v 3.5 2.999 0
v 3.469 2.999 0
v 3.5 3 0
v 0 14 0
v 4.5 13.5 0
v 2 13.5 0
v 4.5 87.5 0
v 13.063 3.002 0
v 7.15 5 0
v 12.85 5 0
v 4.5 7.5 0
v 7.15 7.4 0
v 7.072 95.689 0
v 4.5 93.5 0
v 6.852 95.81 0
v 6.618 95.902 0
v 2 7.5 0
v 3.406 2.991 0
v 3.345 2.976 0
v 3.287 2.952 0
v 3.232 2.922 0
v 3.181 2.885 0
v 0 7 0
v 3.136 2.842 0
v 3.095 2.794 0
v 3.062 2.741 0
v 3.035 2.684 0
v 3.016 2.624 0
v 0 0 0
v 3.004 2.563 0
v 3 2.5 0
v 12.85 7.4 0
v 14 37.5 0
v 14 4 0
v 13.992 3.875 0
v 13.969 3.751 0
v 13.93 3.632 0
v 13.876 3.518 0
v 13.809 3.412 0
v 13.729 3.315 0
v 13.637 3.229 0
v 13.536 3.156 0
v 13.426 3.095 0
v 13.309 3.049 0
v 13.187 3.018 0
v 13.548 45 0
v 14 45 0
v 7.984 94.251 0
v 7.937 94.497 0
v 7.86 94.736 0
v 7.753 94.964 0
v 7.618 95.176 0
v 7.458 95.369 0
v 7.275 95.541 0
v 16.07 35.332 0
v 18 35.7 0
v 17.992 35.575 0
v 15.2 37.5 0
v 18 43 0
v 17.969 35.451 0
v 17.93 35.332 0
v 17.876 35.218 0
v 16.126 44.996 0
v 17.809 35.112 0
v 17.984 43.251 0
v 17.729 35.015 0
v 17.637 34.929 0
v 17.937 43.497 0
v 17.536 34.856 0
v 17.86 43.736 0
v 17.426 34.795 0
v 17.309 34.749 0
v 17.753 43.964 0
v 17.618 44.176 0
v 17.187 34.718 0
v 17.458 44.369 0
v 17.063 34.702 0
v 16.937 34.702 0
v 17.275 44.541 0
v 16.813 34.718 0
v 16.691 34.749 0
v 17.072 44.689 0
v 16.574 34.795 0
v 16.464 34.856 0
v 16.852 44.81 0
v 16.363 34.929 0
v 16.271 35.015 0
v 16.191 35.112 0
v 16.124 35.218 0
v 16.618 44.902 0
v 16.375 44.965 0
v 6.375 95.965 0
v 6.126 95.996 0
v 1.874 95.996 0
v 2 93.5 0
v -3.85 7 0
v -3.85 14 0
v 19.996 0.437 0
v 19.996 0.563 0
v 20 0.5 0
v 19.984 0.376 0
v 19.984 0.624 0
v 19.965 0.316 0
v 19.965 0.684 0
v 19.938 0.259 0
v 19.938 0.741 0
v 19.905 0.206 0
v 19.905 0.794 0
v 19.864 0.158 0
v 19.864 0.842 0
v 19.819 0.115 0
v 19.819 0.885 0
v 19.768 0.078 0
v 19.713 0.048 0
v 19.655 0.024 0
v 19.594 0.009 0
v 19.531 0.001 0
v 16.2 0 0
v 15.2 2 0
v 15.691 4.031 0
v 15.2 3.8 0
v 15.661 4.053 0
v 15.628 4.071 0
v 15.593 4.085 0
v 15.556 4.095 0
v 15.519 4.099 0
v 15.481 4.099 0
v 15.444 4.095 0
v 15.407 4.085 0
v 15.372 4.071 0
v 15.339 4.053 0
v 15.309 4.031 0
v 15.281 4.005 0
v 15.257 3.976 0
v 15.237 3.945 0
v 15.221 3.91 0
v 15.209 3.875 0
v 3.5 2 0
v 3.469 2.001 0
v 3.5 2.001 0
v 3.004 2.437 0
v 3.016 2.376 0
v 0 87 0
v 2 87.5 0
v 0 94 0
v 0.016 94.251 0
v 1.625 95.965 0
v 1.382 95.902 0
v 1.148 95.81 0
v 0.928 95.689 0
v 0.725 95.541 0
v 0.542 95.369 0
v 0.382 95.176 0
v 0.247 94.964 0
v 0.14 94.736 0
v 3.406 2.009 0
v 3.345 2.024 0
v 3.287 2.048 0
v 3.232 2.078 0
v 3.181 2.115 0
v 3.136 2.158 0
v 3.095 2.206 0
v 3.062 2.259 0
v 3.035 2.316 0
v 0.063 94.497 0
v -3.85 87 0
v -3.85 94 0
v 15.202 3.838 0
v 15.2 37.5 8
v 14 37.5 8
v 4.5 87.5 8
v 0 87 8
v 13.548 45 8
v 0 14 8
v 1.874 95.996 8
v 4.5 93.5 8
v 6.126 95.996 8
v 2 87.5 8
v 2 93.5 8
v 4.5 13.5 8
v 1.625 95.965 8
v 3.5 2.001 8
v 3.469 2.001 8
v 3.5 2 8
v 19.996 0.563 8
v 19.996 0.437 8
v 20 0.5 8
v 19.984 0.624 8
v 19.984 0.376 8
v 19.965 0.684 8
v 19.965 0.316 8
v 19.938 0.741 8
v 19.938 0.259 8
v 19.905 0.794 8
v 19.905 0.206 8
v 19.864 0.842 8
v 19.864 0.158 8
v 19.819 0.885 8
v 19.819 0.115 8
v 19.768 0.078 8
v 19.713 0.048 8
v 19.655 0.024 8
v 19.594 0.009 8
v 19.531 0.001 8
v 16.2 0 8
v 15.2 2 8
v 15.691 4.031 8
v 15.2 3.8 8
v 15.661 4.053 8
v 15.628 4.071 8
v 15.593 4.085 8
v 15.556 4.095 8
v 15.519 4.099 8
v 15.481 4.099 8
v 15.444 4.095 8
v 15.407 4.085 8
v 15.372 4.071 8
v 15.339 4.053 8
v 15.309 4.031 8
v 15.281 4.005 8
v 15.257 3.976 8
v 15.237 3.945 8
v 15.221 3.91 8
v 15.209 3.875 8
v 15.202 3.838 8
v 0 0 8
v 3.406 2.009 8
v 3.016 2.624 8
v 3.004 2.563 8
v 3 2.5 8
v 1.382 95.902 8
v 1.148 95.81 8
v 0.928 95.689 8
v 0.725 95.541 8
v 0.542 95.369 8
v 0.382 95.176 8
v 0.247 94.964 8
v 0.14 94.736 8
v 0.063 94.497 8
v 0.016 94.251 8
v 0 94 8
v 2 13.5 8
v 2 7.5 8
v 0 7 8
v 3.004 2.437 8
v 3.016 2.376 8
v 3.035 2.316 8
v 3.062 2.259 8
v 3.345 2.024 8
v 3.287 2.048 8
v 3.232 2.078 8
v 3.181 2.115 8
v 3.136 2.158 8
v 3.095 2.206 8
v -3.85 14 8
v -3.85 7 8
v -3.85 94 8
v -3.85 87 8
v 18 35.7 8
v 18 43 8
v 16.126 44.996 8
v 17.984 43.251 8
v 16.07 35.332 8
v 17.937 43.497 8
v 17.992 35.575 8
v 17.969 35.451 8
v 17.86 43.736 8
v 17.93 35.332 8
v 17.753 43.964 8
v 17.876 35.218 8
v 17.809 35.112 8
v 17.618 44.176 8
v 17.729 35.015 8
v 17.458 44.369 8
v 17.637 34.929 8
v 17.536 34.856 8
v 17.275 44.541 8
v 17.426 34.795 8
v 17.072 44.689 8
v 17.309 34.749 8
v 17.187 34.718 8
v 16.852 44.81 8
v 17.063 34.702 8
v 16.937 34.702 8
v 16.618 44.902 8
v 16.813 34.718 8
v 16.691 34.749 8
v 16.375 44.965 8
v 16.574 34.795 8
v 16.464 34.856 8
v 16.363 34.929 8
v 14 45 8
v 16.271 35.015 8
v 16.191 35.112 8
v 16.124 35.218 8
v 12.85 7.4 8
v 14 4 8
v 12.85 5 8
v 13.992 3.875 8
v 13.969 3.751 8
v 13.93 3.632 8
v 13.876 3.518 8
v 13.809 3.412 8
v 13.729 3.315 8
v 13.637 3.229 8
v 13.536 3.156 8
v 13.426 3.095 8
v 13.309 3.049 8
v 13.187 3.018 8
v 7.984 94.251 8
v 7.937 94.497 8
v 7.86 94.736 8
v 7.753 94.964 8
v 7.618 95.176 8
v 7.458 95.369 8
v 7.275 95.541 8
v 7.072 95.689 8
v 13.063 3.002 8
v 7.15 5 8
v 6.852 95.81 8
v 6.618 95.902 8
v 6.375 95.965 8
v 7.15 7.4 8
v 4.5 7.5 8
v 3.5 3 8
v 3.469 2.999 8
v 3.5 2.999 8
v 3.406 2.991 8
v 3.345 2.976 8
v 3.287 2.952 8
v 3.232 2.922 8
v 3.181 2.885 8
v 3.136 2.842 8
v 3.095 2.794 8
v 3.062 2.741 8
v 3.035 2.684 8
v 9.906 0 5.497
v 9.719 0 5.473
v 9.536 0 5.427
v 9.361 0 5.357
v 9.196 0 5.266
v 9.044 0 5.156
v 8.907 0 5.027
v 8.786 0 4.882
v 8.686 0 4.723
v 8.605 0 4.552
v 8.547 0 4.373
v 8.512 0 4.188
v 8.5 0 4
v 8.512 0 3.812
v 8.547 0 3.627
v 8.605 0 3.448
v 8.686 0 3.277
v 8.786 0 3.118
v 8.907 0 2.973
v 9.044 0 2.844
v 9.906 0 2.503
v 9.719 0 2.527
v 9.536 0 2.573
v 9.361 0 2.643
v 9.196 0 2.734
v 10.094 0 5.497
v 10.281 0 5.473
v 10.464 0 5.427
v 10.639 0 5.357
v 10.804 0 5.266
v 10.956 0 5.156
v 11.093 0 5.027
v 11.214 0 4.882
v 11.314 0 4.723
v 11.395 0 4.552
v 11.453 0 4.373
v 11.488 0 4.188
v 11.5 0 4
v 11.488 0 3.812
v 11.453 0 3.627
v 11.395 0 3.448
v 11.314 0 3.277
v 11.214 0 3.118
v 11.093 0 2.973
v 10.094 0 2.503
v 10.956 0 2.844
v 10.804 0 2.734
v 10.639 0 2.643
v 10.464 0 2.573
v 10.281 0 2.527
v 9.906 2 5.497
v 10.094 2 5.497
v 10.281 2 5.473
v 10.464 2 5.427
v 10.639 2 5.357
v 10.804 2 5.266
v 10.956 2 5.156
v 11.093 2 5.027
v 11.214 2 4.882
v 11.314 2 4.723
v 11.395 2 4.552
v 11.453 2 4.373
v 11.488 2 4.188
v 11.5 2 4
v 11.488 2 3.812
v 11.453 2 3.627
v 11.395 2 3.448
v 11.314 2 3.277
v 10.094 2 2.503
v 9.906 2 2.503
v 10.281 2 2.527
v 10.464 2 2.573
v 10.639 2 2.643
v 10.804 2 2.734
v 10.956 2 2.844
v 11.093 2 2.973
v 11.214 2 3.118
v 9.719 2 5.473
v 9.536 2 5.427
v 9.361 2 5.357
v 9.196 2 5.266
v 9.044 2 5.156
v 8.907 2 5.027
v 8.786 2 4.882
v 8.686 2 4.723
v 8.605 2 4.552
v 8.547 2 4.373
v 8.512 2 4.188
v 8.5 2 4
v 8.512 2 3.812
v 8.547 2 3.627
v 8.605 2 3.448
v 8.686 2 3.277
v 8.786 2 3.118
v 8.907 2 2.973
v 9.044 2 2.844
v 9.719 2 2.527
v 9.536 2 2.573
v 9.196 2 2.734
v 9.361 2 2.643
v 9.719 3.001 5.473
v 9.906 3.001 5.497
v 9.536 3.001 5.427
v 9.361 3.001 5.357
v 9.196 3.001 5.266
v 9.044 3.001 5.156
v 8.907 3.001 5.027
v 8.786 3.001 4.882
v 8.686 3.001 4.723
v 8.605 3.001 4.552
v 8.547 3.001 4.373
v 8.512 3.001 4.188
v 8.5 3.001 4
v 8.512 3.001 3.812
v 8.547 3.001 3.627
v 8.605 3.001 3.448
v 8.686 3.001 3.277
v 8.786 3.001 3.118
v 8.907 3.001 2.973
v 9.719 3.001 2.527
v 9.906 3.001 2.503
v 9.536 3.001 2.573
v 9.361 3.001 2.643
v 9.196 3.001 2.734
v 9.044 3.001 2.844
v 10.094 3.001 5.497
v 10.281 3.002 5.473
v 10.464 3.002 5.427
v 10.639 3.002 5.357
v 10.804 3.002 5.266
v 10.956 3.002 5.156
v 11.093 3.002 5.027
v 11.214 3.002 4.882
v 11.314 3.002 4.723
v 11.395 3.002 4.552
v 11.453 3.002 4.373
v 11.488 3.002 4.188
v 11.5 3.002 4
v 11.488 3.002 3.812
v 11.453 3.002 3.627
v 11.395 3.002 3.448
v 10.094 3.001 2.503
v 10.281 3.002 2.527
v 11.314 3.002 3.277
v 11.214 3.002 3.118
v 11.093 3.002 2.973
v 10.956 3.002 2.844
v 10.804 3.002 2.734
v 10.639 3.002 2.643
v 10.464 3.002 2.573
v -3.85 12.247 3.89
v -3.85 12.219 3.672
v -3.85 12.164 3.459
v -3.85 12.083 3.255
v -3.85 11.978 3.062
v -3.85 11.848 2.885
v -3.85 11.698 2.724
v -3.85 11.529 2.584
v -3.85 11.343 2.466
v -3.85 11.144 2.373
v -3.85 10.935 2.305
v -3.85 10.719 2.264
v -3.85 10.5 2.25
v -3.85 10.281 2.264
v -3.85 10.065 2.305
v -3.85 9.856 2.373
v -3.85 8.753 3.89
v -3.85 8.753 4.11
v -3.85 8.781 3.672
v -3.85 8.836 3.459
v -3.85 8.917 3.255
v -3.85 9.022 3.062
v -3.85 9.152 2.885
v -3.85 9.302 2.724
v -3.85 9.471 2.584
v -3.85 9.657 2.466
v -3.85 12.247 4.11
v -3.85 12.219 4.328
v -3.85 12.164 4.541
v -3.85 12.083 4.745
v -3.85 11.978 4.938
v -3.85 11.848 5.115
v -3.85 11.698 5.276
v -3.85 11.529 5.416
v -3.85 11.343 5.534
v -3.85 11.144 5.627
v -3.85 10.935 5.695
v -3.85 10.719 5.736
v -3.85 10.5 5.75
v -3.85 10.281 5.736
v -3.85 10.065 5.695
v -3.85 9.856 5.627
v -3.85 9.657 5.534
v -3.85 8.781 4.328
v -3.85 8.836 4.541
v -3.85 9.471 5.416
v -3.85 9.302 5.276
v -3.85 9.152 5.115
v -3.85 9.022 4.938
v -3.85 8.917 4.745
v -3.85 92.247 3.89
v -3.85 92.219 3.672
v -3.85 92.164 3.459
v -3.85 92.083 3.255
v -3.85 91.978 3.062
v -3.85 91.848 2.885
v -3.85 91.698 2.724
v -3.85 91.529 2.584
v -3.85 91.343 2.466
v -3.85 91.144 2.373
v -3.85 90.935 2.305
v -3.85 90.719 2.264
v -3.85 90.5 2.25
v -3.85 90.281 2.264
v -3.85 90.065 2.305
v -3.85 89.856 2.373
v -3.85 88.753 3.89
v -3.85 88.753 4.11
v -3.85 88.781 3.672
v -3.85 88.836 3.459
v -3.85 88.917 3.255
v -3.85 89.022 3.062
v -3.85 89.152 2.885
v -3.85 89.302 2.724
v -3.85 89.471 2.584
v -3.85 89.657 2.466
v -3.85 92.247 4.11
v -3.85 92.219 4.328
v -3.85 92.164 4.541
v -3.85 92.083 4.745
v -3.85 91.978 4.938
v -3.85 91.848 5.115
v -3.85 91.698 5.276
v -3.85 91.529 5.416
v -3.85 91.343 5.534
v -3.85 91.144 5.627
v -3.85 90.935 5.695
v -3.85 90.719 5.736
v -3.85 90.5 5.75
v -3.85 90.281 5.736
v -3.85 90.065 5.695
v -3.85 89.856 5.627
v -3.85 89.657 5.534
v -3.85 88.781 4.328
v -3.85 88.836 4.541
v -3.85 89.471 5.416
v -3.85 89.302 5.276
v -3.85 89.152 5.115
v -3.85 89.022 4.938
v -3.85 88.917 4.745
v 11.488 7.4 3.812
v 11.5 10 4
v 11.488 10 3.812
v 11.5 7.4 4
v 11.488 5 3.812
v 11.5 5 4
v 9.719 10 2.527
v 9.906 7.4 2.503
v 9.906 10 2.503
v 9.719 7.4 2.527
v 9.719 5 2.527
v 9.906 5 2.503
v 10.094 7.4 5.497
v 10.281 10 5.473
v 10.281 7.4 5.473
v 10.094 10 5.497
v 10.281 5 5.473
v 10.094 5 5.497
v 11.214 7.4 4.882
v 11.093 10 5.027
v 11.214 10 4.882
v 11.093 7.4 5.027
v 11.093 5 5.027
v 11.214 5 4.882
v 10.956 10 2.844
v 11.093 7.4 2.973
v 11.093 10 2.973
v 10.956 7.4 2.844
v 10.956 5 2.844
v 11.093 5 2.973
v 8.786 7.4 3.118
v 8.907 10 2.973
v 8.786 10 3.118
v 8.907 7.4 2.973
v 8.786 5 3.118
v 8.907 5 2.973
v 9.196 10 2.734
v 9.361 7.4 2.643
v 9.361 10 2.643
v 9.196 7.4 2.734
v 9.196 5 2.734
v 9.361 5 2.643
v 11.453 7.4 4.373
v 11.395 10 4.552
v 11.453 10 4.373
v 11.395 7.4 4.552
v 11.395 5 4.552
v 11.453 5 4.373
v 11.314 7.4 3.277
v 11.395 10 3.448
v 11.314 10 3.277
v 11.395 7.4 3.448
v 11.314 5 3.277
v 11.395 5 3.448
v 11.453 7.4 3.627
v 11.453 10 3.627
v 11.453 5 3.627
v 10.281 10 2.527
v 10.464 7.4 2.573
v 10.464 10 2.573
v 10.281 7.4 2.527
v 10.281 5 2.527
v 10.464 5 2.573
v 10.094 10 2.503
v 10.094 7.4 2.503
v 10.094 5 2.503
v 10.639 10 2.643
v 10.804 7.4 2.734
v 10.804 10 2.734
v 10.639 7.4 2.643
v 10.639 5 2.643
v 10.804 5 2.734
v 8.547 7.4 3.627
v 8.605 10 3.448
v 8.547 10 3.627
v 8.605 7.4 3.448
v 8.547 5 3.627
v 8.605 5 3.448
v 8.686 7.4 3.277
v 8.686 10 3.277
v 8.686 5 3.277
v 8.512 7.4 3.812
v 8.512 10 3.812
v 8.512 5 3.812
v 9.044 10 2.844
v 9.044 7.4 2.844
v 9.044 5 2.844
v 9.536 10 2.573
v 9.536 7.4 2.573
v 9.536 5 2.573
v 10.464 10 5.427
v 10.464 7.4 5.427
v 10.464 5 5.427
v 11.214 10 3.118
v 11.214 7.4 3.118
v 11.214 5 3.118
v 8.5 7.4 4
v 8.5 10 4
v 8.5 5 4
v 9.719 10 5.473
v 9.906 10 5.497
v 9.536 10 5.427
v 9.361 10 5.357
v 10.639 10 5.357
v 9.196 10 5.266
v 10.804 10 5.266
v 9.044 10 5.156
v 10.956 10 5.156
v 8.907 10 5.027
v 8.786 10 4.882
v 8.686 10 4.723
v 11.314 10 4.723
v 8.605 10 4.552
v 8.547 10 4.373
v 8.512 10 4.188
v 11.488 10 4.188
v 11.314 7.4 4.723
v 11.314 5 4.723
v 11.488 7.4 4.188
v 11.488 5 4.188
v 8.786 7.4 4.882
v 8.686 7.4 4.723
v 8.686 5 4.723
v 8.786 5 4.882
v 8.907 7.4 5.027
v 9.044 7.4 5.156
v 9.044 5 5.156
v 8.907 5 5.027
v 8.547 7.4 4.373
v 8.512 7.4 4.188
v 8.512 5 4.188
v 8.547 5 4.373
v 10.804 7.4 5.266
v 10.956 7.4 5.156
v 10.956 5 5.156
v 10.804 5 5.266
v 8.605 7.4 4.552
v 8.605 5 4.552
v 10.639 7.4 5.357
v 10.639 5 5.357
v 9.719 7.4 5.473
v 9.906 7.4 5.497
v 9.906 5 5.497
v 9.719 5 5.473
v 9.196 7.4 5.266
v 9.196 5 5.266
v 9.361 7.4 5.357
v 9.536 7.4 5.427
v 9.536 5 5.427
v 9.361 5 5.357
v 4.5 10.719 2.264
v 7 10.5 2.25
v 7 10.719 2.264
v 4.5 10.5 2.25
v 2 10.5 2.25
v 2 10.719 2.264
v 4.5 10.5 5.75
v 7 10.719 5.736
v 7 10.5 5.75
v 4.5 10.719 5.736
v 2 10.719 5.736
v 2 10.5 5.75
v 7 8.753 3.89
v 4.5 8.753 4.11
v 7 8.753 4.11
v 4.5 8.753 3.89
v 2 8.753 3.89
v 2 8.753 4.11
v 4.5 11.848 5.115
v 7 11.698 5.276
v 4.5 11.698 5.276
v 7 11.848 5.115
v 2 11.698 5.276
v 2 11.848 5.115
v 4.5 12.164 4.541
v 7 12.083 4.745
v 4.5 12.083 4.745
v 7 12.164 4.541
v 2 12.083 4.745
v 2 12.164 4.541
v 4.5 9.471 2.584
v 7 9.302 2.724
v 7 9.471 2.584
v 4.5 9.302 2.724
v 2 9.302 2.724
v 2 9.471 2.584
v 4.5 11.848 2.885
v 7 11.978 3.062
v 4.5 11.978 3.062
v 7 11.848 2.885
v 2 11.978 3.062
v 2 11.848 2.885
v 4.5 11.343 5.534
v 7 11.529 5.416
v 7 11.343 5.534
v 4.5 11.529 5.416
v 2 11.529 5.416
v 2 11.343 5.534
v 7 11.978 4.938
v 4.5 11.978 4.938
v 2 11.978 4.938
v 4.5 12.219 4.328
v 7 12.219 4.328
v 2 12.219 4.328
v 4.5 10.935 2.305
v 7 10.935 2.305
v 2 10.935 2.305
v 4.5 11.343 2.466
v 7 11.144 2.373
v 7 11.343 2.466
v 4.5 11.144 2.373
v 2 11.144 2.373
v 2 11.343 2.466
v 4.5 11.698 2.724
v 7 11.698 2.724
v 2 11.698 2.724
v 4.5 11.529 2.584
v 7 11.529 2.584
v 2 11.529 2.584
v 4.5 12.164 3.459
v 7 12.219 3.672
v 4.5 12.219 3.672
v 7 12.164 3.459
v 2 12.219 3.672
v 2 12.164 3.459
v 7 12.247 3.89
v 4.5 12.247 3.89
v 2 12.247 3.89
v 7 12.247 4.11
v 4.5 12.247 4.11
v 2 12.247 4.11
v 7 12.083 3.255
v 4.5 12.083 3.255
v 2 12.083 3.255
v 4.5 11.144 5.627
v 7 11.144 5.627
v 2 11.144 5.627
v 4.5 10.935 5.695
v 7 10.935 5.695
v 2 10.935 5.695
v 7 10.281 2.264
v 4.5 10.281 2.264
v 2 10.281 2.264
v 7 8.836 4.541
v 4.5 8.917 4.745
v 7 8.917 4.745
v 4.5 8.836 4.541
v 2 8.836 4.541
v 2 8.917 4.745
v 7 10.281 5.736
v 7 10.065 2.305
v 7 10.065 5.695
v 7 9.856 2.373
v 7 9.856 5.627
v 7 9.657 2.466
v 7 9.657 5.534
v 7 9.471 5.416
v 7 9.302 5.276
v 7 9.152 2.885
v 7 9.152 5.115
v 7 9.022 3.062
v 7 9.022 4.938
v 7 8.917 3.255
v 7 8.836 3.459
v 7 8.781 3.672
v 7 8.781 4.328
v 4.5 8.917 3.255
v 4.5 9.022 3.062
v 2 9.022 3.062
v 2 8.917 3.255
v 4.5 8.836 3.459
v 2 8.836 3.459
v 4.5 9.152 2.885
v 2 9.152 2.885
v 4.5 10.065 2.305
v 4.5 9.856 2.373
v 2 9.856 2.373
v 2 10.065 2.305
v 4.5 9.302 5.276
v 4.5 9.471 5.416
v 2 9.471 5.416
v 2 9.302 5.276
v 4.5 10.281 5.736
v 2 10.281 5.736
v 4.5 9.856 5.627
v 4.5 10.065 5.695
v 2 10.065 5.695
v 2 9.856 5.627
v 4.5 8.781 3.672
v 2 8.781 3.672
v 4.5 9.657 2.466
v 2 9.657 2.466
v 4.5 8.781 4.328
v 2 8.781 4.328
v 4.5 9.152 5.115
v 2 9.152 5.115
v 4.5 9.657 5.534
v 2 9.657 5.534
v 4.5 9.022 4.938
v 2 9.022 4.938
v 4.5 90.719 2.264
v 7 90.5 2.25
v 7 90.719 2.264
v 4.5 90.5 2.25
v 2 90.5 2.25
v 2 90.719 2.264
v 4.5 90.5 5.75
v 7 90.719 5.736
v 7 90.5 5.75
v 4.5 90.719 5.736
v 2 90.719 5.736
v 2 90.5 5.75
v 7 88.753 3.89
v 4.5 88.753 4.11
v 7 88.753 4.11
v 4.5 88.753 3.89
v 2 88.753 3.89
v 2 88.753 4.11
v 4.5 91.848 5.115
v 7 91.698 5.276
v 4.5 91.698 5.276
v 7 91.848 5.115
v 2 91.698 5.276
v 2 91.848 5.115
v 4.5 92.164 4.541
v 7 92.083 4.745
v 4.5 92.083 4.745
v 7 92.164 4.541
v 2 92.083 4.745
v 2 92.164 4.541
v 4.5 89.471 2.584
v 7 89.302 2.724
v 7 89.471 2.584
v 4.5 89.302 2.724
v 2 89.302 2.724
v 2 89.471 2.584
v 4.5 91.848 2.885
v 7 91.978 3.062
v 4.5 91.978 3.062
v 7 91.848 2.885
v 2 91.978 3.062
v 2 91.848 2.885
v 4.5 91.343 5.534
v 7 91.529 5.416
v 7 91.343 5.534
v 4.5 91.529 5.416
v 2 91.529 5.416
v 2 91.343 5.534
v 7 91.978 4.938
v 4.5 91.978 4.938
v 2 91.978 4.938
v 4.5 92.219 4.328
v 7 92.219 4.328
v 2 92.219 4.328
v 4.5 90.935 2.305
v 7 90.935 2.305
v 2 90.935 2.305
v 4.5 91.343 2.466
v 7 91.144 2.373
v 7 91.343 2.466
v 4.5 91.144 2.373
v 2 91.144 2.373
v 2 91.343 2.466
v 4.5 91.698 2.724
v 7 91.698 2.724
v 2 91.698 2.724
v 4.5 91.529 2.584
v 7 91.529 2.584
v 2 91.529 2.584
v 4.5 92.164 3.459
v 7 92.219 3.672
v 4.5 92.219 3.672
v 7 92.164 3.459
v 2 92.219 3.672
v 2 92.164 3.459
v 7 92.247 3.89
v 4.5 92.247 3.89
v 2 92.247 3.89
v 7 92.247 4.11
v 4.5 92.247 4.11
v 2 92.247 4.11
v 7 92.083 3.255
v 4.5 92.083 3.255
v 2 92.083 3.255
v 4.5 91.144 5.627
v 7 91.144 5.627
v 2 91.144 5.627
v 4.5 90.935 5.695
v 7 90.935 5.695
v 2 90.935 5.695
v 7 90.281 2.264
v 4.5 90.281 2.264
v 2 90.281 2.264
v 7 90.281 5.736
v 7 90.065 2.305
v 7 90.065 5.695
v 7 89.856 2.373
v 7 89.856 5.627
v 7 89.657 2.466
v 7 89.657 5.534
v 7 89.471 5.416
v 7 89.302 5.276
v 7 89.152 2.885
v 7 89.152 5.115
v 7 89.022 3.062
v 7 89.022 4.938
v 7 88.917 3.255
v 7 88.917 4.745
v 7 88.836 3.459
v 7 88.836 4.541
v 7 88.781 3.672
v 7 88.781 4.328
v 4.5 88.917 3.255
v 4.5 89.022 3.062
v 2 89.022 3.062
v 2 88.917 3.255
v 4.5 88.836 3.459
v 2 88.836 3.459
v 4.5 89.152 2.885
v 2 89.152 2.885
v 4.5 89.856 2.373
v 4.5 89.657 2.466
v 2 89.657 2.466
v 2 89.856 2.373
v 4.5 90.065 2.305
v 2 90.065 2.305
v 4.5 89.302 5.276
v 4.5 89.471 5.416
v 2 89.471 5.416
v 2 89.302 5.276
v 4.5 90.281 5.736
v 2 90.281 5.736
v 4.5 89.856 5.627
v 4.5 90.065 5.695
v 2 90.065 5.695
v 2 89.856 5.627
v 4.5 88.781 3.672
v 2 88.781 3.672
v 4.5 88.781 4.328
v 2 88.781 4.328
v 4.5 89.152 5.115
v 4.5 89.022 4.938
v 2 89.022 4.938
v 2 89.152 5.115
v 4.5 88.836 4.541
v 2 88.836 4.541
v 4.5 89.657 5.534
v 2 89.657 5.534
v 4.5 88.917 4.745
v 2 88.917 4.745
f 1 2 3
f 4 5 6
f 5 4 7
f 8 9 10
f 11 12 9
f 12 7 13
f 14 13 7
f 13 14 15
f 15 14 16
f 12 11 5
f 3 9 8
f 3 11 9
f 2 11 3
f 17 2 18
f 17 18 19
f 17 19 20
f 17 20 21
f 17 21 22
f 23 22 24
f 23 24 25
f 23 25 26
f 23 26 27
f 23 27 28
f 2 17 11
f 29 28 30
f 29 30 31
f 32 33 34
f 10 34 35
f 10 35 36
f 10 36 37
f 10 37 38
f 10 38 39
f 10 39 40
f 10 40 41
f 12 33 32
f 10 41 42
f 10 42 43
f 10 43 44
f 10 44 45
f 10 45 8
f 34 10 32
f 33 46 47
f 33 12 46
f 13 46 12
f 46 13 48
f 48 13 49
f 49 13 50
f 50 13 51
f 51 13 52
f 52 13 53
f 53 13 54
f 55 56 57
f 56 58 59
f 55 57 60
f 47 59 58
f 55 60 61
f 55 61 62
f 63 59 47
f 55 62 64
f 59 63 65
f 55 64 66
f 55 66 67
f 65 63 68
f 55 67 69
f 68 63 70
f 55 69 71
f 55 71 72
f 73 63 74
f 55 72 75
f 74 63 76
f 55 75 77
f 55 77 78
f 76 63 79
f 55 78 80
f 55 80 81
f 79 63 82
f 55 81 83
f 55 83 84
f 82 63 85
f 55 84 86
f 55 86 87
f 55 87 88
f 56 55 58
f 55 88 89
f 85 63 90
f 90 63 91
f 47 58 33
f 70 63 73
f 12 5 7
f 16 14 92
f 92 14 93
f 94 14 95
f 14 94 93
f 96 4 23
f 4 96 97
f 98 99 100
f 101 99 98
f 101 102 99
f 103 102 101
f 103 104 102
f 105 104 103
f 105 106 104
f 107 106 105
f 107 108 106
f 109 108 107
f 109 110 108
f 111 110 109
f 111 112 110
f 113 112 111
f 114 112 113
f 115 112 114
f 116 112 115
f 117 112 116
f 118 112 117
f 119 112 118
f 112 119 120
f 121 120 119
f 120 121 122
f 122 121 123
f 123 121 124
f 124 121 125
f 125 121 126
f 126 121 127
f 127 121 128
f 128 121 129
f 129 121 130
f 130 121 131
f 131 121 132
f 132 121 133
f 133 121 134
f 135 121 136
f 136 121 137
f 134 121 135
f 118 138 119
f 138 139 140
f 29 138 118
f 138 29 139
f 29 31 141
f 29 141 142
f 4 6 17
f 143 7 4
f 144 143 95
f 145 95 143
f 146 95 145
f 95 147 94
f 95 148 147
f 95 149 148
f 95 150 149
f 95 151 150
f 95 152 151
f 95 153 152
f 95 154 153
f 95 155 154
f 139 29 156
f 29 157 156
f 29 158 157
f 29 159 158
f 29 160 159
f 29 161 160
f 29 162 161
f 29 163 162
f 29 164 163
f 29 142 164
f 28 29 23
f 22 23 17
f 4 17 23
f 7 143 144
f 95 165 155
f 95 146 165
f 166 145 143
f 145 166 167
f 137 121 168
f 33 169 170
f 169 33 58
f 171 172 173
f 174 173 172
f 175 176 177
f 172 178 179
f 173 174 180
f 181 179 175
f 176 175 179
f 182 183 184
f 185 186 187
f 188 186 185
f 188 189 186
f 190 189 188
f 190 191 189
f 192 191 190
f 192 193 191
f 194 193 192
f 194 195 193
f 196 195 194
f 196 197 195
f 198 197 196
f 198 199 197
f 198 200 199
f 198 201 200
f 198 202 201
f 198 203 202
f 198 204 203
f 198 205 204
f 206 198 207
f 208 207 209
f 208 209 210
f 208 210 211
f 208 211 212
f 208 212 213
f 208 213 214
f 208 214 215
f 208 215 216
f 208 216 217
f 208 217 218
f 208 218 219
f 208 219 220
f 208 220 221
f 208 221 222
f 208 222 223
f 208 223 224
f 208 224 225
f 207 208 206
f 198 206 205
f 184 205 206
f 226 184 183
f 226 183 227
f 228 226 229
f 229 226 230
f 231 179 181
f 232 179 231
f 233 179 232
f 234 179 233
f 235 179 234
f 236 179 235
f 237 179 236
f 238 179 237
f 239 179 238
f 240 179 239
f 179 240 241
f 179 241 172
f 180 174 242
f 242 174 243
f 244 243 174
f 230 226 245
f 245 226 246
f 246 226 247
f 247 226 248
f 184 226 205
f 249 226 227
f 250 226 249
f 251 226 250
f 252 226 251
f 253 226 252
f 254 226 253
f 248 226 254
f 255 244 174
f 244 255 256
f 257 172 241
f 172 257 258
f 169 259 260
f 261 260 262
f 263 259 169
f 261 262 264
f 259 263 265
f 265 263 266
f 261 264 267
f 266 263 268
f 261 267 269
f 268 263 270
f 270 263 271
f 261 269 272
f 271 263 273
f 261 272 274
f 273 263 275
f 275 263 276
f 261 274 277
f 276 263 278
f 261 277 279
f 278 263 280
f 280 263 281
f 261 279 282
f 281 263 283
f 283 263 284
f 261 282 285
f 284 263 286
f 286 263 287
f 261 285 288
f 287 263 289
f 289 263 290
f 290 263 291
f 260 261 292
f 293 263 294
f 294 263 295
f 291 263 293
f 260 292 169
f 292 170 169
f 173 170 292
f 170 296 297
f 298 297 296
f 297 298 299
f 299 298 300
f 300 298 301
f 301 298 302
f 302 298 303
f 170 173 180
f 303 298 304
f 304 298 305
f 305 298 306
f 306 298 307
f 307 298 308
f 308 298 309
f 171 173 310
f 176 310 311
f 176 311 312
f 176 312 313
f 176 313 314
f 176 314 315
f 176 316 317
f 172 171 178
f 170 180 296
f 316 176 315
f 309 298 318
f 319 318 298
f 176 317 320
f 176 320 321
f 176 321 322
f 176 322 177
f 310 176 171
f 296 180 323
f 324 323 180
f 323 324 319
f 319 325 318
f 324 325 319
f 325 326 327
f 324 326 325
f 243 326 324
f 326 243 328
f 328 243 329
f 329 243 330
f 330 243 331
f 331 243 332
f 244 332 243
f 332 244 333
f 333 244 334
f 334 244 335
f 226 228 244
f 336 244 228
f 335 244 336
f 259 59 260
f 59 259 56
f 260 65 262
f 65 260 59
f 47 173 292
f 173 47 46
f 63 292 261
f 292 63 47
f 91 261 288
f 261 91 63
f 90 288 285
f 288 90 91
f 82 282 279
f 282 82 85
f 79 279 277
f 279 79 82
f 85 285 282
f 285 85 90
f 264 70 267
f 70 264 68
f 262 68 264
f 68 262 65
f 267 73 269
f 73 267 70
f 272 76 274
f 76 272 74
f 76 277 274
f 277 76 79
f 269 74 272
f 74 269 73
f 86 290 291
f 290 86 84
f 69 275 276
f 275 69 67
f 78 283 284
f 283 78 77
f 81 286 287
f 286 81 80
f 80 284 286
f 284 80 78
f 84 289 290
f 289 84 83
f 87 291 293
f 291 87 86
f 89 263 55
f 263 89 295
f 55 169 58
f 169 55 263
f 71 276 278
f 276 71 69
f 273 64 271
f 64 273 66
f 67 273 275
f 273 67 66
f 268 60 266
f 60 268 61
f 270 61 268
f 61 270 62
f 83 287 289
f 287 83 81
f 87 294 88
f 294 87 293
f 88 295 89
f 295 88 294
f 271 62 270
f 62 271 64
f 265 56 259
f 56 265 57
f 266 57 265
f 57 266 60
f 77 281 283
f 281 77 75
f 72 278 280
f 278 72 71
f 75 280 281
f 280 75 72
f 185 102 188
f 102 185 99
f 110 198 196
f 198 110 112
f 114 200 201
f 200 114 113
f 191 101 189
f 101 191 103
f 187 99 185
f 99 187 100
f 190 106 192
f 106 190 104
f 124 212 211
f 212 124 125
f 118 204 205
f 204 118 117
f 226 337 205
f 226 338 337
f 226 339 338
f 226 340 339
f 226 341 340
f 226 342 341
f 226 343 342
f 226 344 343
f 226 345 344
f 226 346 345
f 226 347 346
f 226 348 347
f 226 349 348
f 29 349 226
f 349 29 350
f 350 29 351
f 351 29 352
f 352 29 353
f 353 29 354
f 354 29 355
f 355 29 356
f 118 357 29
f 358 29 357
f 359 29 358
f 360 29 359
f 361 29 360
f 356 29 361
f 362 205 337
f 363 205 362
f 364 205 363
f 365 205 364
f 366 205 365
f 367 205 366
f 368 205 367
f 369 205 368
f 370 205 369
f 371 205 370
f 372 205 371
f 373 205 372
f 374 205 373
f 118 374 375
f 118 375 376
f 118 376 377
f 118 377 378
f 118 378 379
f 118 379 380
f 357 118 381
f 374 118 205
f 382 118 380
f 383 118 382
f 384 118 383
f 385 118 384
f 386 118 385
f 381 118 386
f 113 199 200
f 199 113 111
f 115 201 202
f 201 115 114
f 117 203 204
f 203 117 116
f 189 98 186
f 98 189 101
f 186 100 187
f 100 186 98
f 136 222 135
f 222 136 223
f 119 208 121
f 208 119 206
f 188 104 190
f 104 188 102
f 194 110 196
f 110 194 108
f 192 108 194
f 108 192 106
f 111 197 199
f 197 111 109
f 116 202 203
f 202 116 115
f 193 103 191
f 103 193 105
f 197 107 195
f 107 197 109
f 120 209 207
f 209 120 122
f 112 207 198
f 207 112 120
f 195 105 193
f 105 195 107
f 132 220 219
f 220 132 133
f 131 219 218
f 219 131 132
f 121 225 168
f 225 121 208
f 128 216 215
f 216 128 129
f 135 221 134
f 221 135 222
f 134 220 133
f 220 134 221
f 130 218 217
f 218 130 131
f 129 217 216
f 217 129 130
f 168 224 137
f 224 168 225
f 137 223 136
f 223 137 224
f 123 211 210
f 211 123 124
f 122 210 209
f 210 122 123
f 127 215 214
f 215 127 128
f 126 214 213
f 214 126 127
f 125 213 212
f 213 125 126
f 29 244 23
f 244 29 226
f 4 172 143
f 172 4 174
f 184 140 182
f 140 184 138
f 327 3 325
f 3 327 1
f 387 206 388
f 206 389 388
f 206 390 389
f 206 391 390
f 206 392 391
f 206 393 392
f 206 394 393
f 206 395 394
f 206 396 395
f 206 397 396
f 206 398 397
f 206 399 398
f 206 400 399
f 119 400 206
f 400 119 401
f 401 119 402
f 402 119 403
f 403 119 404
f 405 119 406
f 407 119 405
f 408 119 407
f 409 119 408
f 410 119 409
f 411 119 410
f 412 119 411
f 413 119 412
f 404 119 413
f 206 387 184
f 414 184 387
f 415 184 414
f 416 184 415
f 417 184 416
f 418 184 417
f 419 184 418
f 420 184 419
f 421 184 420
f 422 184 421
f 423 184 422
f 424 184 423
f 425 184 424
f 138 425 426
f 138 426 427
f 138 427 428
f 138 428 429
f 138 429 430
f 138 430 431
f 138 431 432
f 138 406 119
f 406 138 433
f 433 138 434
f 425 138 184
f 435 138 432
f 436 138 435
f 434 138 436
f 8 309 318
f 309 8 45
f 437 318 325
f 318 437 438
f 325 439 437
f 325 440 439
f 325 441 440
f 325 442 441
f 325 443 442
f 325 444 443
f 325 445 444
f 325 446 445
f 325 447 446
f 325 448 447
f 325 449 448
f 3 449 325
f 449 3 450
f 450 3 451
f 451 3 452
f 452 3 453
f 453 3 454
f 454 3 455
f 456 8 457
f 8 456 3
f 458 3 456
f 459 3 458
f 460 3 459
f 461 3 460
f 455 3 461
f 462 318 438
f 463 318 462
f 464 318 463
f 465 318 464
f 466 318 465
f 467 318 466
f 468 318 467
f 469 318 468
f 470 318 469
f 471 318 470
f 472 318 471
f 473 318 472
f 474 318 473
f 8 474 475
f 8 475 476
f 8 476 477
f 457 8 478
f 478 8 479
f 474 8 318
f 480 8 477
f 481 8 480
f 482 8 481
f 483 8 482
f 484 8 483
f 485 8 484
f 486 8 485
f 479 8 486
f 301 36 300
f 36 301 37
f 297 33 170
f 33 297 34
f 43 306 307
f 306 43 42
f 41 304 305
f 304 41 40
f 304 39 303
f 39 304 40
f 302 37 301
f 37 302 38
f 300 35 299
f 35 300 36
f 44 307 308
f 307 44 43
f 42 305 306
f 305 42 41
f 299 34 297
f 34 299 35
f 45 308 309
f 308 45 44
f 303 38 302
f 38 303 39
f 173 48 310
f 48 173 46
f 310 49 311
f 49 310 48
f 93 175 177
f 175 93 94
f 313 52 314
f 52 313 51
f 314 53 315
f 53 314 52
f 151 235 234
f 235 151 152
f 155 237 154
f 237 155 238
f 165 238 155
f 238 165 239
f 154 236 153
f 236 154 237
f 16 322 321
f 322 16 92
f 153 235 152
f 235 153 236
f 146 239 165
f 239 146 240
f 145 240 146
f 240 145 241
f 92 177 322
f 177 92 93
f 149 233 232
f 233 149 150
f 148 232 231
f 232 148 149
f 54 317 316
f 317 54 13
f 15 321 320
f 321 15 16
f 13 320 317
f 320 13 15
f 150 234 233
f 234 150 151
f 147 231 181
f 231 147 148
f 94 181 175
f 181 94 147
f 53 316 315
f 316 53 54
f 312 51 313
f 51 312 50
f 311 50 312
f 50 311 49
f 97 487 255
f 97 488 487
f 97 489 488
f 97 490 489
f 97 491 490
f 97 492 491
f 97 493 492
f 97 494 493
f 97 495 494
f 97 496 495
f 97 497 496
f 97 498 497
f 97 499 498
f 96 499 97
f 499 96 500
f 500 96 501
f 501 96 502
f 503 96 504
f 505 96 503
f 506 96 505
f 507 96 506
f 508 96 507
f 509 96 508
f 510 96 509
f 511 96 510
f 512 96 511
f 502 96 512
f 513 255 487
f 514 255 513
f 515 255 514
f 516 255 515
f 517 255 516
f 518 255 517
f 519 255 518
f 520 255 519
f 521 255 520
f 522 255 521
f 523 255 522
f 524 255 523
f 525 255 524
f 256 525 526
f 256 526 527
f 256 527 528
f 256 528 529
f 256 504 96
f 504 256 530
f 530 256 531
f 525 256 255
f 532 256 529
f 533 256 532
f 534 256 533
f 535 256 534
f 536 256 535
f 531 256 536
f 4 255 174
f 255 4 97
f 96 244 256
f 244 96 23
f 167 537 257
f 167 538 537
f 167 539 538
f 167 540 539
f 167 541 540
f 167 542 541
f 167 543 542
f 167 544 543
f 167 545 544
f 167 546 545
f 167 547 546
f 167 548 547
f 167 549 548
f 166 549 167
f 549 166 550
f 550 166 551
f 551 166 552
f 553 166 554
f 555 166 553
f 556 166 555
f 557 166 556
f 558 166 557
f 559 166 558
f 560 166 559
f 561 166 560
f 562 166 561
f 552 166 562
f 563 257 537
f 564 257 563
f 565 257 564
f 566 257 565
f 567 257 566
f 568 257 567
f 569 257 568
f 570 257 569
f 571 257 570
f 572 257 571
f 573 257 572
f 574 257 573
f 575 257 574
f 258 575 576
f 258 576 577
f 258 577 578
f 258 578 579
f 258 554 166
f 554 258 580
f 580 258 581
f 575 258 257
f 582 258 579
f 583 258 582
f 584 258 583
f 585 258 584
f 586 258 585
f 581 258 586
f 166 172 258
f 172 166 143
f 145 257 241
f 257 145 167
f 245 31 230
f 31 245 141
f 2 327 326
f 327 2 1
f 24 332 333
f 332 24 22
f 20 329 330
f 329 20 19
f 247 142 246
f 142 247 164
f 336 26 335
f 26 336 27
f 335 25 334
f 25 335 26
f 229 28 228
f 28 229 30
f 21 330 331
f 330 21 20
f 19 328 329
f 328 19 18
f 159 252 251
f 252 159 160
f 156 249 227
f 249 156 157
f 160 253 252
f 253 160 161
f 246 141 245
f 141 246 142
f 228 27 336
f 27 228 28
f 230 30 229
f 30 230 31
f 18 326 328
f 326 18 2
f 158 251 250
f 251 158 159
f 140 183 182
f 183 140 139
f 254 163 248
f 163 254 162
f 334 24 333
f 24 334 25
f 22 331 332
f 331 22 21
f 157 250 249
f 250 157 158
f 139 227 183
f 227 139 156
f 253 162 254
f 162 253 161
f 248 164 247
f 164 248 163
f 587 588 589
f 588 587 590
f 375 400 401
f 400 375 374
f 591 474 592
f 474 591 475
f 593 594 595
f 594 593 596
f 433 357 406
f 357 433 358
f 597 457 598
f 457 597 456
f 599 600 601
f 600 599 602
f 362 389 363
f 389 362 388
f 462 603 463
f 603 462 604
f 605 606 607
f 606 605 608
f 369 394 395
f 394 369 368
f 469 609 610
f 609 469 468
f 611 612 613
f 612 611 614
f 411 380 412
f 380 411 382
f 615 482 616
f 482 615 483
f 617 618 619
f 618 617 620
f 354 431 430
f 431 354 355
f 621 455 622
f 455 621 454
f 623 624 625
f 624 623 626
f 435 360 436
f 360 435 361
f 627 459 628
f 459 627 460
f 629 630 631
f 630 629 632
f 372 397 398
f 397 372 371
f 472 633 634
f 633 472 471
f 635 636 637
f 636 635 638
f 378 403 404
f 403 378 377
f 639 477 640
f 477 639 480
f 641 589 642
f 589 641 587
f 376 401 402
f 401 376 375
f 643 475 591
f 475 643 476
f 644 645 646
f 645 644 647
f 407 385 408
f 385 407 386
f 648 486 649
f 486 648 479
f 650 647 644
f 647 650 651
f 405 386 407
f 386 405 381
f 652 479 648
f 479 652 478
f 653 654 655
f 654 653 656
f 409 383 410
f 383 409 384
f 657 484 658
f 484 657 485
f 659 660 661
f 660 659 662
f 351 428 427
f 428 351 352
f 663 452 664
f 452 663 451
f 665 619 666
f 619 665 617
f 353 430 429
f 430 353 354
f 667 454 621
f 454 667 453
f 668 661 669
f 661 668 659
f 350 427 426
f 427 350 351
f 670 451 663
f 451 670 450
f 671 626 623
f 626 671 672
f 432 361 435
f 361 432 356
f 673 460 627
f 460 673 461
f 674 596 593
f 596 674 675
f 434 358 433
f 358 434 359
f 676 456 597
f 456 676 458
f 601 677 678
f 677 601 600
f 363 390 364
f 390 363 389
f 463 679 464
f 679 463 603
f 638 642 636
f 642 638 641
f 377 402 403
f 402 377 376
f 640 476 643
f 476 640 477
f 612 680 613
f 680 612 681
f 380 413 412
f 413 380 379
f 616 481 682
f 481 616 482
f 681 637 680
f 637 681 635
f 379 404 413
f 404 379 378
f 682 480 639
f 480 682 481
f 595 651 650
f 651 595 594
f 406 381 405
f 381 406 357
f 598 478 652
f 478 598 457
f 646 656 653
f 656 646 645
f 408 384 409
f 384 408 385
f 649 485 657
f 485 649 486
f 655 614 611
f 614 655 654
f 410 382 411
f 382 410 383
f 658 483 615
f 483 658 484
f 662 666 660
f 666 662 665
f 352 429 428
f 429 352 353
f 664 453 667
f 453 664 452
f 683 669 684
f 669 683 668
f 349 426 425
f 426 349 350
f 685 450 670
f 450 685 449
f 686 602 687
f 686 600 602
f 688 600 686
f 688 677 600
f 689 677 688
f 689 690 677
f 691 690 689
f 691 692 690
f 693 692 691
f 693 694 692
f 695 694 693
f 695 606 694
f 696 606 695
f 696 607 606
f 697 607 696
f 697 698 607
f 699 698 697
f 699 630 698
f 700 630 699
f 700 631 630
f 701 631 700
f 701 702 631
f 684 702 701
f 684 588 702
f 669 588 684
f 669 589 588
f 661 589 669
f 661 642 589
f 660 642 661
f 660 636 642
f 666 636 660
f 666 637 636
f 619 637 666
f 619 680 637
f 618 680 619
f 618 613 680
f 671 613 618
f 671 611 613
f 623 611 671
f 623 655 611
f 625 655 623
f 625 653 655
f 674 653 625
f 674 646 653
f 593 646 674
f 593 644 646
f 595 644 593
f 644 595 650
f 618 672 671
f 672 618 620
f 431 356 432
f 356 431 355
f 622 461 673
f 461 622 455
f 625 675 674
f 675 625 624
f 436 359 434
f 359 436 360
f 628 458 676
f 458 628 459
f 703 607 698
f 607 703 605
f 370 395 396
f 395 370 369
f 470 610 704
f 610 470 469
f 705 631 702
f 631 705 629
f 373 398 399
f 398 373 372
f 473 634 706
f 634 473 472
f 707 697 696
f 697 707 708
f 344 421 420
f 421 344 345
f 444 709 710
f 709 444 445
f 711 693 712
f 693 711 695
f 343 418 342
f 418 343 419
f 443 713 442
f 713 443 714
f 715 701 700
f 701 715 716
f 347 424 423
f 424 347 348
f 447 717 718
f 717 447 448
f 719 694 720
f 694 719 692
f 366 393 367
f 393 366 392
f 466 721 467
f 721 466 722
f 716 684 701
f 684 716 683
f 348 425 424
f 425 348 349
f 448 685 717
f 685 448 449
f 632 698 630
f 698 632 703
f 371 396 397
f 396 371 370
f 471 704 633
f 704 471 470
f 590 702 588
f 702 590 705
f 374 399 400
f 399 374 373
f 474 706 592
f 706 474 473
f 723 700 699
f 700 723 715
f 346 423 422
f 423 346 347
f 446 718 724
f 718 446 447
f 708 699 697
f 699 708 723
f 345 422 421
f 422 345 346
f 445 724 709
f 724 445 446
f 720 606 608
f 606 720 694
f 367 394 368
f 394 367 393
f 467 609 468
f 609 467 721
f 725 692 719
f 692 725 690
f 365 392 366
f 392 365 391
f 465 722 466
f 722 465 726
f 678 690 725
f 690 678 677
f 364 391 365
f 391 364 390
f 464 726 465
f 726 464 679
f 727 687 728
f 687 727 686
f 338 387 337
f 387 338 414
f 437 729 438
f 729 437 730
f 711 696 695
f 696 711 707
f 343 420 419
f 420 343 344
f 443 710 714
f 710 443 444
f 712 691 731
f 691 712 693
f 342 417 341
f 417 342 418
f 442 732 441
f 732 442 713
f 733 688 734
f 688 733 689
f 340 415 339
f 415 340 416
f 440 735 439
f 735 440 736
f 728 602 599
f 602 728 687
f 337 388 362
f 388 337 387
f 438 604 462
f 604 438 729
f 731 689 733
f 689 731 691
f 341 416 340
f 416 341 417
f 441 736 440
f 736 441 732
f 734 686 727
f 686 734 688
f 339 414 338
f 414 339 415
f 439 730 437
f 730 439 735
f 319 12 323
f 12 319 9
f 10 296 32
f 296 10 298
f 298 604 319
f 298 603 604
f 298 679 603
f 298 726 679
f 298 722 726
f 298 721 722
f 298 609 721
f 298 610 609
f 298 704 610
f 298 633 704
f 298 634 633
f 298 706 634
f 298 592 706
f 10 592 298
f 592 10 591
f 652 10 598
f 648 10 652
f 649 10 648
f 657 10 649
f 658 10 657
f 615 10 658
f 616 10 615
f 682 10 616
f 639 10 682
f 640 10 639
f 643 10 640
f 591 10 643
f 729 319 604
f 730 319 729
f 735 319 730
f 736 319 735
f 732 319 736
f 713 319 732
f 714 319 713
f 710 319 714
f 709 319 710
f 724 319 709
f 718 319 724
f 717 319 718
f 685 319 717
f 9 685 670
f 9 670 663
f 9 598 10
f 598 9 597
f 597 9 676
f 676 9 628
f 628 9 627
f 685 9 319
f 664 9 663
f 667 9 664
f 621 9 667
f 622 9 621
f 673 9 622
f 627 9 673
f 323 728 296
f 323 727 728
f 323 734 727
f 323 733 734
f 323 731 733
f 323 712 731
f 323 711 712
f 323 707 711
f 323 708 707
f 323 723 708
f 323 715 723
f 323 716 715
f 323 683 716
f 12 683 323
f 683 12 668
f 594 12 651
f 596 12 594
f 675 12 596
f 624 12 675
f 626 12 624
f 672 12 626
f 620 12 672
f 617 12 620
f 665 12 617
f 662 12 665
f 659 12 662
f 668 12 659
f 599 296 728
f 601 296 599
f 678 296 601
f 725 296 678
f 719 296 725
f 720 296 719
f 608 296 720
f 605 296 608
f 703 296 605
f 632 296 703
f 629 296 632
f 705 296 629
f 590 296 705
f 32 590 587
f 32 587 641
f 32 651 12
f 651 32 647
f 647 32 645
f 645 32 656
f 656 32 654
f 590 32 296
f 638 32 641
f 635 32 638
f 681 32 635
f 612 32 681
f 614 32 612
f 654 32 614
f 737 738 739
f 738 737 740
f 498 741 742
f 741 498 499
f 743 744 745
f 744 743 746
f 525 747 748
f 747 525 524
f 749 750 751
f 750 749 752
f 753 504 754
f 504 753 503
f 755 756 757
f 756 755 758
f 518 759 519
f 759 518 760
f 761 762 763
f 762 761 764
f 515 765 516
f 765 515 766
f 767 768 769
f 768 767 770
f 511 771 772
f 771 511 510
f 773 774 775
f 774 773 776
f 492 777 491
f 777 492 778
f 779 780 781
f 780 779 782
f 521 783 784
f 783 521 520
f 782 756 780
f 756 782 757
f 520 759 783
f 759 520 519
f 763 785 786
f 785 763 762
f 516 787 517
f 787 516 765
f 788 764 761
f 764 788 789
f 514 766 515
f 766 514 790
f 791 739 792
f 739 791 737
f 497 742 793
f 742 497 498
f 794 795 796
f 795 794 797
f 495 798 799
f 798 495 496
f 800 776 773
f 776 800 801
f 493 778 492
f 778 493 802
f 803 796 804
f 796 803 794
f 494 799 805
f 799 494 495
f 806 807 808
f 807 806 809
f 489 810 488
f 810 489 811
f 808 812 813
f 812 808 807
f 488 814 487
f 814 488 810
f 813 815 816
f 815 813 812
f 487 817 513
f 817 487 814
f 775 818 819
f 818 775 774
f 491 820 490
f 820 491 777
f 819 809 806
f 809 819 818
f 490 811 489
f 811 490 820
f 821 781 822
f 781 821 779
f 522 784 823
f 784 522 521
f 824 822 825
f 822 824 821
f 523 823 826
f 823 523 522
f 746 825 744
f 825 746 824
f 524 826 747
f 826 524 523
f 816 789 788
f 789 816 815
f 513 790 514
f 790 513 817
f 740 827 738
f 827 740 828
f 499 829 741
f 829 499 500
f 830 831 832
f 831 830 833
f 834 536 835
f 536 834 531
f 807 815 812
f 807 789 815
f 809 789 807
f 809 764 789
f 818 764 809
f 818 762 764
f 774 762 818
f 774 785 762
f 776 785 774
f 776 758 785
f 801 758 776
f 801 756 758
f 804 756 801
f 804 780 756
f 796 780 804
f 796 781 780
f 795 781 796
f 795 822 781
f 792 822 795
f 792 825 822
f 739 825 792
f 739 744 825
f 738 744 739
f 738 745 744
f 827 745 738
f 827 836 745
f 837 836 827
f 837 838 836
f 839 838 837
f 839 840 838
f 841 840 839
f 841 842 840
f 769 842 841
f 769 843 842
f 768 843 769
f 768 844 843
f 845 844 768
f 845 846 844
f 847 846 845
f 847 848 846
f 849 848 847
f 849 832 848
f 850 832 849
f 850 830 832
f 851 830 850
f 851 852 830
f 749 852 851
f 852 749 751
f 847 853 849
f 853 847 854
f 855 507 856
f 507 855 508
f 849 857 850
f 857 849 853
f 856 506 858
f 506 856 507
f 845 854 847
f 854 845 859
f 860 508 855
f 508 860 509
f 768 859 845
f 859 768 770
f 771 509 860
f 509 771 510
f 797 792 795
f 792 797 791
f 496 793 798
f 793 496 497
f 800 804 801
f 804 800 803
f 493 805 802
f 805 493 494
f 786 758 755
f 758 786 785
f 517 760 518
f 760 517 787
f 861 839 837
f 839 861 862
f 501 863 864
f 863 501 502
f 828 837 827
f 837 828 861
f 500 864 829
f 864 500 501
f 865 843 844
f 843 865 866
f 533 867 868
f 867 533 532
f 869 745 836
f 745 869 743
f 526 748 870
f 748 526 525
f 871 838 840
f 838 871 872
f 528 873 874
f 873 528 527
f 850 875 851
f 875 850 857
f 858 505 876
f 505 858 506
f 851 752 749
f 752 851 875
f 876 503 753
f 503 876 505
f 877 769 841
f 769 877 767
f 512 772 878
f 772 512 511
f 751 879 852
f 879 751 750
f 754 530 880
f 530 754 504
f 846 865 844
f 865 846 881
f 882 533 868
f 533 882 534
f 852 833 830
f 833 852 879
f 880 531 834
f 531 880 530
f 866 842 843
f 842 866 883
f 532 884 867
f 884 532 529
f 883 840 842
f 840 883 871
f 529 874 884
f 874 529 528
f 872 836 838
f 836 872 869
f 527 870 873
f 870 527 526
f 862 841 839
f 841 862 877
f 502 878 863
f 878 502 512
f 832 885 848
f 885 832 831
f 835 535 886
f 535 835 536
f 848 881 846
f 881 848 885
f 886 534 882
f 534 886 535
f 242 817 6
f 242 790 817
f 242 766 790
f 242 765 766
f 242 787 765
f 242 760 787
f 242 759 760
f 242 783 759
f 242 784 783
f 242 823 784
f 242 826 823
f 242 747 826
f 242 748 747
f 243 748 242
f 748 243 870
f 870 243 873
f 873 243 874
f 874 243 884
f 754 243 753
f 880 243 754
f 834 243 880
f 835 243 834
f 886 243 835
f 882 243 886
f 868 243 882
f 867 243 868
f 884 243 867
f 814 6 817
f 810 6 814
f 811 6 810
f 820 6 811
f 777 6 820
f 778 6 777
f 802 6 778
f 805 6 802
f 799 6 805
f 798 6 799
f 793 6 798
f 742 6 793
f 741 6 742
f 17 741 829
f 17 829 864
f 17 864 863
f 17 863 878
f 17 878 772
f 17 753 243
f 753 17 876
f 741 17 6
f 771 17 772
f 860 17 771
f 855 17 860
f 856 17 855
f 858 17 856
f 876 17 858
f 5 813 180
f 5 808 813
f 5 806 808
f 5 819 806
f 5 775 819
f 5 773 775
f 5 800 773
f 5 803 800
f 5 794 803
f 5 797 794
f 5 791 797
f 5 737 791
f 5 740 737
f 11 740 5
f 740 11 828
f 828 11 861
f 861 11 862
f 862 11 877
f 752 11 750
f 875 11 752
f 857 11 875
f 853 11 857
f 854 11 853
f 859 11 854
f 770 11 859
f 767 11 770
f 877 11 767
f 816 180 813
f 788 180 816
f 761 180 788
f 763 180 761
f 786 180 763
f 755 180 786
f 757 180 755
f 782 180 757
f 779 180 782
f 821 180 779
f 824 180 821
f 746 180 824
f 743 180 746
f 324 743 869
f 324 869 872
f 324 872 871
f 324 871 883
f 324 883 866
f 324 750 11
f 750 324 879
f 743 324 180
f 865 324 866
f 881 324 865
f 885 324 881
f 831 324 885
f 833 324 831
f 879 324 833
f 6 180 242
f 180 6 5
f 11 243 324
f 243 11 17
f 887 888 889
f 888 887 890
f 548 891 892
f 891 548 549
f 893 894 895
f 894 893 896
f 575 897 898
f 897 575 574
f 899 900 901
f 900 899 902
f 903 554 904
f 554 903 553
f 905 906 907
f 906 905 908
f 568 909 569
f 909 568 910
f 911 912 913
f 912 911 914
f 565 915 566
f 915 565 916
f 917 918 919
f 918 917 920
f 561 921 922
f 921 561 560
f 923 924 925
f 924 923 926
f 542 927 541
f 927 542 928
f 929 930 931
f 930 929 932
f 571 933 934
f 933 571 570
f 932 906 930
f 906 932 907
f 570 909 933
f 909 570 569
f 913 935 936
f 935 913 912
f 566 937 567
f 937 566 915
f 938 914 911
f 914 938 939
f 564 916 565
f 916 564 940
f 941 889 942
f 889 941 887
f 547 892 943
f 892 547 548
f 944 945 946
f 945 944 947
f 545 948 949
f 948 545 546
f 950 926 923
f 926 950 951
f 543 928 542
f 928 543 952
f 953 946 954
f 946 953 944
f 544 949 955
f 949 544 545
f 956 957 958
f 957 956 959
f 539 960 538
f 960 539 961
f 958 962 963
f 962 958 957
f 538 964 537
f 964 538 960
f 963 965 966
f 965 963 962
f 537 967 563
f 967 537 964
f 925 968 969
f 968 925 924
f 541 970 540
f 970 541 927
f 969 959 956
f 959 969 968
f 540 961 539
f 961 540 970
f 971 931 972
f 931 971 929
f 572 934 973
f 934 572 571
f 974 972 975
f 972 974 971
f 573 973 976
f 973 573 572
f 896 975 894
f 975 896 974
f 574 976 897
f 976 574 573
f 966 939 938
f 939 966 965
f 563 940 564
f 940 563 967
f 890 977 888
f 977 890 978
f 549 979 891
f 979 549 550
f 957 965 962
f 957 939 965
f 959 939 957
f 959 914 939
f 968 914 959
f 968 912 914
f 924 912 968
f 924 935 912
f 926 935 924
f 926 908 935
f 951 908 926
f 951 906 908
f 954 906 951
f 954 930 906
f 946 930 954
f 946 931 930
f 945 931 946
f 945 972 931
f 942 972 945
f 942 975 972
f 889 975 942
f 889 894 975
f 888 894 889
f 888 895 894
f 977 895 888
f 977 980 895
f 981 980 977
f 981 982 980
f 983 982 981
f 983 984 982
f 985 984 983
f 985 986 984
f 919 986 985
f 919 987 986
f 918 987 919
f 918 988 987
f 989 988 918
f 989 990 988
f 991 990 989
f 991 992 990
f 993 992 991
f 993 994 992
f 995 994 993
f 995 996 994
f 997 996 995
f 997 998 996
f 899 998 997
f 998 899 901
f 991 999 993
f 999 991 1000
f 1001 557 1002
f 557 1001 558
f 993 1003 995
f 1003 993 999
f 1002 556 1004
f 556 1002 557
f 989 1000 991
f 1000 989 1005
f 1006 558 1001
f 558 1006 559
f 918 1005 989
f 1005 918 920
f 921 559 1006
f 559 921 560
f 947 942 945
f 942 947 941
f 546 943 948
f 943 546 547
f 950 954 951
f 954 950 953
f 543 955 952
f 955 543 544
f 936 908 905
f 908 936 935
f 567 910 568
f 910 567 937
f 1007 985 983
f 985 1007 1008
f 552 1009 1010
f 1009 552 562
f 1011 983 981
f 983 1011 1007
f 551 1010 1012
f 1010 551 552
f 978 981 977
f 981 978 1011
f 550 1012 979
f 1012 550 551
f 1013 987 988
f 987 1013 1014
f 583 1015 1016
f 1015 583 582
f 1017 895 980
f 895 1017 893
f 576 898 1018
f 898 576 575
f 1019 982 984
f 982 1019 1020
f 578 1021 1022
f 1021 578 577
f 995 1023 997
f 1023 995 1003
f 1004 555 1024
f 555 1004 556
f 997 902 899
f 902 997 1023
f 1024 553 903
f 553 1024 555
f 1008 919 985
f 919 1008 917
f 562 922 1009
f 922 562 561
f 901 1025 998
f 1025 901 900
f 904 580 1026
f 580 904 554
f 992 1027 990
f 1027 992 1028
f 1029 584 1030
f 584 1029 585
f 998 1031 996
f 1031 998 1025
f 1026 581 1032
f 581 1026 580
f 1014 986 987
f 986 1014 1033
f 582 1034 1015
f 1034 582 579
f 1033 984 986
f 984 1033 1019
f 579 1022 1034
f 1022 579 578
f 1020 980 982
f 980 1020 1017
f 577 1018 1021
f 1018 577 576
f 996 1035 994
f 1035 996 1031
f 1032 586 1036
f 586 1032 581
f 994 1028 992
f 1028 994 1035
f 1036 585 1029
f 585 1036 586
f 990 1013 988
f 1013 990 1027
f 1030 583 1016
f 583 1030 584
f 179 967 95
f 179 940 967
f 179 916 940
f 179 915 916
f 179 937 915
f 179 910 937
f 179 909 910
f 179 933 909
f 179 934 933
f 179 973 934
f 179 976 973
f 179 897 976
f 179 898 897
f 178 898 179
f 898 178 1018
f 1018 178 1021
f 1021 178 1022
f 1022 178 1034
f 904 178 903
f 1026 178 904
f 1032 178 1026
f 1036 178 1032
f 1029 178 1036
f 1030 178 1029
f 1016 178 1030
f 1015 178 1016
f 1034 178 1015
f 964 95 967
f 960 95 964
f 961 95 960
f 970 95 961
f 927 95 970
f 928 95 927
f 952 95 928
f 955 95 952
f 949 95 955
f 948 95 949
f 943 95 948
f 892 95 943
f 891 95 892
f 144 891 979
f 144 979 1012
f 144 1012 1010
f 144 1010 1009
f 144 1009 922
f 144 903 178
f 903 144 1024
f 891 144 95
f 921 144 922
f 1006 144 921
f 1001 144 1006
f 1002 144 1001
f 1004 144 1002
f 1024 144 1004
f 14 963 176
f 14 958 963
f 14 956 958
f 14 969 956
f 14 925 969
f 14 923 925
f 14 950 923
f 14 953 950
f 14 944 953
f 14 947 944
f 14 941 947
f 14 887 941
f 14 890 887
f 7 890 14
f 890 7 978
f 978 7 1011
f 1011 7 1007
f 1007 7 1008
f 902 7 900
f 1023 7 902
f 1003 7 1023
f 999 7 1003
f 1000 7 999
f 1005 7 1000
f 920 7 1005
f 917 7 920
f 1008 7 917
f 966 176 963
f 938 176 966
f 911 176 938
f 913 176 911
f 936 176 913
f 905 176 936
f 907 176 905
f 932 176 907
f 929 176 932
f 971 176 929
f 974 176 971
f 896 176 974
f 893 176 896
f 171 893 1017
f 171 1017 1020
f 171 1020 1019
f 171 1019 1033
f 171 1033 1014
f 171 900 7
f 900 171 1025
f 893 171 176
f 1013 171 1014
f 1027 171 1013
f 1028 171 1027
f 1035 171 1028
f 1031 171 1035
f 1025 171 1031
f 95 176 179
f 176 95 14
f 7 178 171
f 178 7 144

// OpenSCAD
//-------------------------------------------------------------------
// title: DIN clip
// author: OK1HRA 
// license: Creative Commons BY-SA
// URL: http://remoteqth.com/3d-din-rail-mount-clip.php
// Original revision: 0.1
// revision: 0.2b Contributed by John Cabrer
// format: OpenSCAD
//-------------------------------------------------------------------
// HowTo:
// Determine the center to center hole spacing of the device to mount (mount_hole_spacing)
// Pick a metric screw size, and length
// Pick a nut width and height
// See http://mcmaster-carr.com/ for drawings of all screws and nuts.
// The mount post length is calculated based on the screw length
// After after making your changes, press F5 to re-render them to the screen
// .STL export press F6 and menu /Design/Export as STL...

// ----- Inside Hole Calibration Values --------
// To use, print out a part with default values (i.e. mount_nut_width = 8,
// actual_measurement = 8)
// Measure the resulting hole width of the nut, and type that value as the actual measurement. Render and export. Print again.
// The gain_adjust value will insure that holes measure as they should.

expected_measurement = 8;
actual_measurement = 8;
gain_adjust = expected_measurement / actual_measurement; // Default = 8/8 = 1

//----------------- Mounting Screw Input Parameters ---------------------------------
plate_thickness = 1.65;    // This is the thickness of the thing being mounted
mount_hole_spacing = 80;    // mount_hole_spacing between mounting holes. 31mm for LCD1602. 50mm for relay module
mount_screw_length = 10; // Min = 6
mount_screw_thread_diameter = 3.5;    // Min = 1, Max = 6
mount_nut_width = 6;   // Max = 10
mount_nut_height = 2.5;   // Max = 5

//----------------- Mounting Srew Input Parameters, Default is M3x8 ---------------------------------
lock_screw_length = 8; 
lock_screw_thread_diameter = 3 * gain_adjust;
lock_nut_width = 5.5 * gain_adjust;
lock_nut_height = 2.4 * gain_adjust;

//----------------- Calculated Parameters
standoff_length = mount_screw_length - (mount_nut_height * gain_adjust) - plate_thickness - 2;
$fn=50;
width = 8; 
r_mount_screw = (mount_screw_thread_diameter * gain_adjust) / 2;      // Radius of the mounting screw threads
r_lock_screw = (lock_screw_thread_diameter * gain_adjust) / 2;
expand = 1;      // 0-x
long = 45;

din();

module din(){
	difference() {
		union() {
			hull() {
				translate([15+expand,long-2,0]) {
                    cylinder(h=width, r=2, center=false);}

                translate([12+expand,37.5,0]) {
                    cube([5,1,width], center=false);}

                translate([12+expand,long-1,0]) {
                    cube([1,1,width], center=false);}
            }

			hull() {
				translate([16+expand,35.7,0]) {
                    cylinder(h=width, r=1, center=false);}

                translate([14.2+expand,37.5,0]) {
                    cube([2.8,1,width], center=false);}
            }

			hull() {
				translate([18.5+expand,0.5,0]) {
                    cylinder(h=width, r=0.5, center=false);}
				translate([14.5+expand,3.8,0]) {
                    cylinder(h=width, r=0.3, center=false);}
				translate([14.2+expand,0,0]) {
                    cube([1,1,width], center=false);}
			}

			cube([3.5,4,width], center=false);
            cube([15+expand,2,width], center=false);

			hull() {
				translate([12+expand,4,0]) {
                    cylinder(h=width, r=1, center=false);}

                translate([0,3,0]) {
                    cube([1,1,width], center=false);}

                translate([0,long-1,0]) {
                    cube([13+expand,1,width], center=false);}
            }

			hull() {
            translate([0,40,0]) {
                cube([14,1,width], center=false);}

            translate([2,mount_hole_spacing+14,0]) {
                cylinder(h=width, r=2, center=false);}

            translate([6,mount_hole_spacing+14,0]) {
                cylinder(h=width, r=2, center=false);}
            }

            translate([-standoff_length,10.5-3.5,0]) {
                cube([standoff_length+1,7,width], center=false);}

            translate([-standoff_length,10.5-3.5+mount_hole_spacing,0]) {
                cube([standoff_length+1,7,width], center=false);}
        }
        // Clip fillet
        translate([3.5,2.5,-1]) {
            cylinder(h=width+2, r=0.5, center=false);}
        
        // Lock Screw and Nut
        translate([9+expand,-1,width/2]) rotate([-90,0,0]){
            cylinder(h=lock_screw_length+3, r=r_lock_screw, center=false);}

		translate([6.15+expand,5,-1]) {
            cube([5.7,lock_nut_height,width+2], center=false);}

        // 1. mount
        translate([-1-standoff_length,10.5,width/2]) rotate([0,90,0]){
            cylinder(h=standoff_length+8, r=r_mount_screw, center=false);}

		translate([2,7.65 - (((mount_nut_width * gain_adjust) - 5.7) / 2),-1]) {
            cube([mount_nut_height * gain_adjust,mount_nut_width * gain_adjust,width+2], center=false);}

        // 2. mount
        translate([-1-standoff_length,10.5+mount_hole_spacing,width/2]) rotate([0,90,0]){
            cylinder(h=standoff_length+8, r=r_mount_screw, center=false);}

		translate([2,7.65 - (((mount_nut_width * gain_adjust) - 5.7) / 2)+mount_hole_spacing,-1]) {
            cube([mount_nut_height * gain_adjust,mount_nut_width * gain_adjust,width+2], center=false);}
    }
}
